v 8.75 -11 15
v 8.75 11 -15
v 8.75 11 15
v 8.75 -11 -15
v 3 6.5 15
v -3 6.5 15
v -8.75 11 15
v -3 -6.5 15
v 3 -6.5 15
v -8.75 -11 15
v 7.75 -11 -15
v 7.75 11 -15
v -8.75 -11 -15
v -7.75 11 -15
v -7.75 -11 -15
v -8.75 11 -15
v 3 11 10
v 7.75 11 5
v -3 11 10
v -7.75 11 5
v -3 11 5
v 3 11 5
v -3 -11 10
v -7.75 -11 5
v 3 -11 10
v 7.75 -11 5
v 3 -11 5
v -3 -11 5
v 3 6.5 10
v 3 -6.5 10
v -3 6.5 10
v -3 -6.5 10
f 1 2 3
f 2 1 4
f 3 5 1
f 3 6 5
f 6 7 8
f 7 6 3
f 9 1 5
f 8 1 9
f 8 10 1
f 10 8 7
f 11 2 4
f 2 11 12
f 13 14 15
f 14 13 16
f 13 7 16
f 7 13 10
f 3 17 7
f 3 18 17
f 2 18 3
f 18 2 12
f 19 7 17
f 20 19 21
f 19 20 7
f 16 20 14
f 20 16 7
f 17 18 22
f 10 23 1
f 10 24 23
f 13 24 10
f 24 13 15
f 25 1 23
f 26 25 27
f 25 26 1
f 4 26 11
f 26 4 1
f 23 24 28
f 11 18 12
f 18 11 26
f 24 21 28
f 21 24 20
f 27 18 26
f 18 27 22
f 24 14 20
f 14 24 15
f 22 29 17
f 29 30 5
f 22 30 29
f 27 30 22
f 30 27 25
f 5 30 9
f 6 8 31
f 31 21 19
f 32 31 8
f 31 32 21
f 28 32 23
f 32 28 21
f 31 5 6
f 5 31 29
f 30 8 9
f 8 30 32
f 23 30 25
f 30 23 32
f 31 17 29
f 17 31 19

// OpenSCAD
//!OpenSCAD


sella();

module sella() {
  difference() {
    cube([17.5, 22, 30], center=true);

    translate([0, 0, -5]){
      cube([15.5, 24, 20], center=true);
    }
translate([0,0,12]){
cube([6, 13, 20], center=true);
  }

translate([0,0,0]){
cube([6, 25, 20], center=true);
  }

}
}
